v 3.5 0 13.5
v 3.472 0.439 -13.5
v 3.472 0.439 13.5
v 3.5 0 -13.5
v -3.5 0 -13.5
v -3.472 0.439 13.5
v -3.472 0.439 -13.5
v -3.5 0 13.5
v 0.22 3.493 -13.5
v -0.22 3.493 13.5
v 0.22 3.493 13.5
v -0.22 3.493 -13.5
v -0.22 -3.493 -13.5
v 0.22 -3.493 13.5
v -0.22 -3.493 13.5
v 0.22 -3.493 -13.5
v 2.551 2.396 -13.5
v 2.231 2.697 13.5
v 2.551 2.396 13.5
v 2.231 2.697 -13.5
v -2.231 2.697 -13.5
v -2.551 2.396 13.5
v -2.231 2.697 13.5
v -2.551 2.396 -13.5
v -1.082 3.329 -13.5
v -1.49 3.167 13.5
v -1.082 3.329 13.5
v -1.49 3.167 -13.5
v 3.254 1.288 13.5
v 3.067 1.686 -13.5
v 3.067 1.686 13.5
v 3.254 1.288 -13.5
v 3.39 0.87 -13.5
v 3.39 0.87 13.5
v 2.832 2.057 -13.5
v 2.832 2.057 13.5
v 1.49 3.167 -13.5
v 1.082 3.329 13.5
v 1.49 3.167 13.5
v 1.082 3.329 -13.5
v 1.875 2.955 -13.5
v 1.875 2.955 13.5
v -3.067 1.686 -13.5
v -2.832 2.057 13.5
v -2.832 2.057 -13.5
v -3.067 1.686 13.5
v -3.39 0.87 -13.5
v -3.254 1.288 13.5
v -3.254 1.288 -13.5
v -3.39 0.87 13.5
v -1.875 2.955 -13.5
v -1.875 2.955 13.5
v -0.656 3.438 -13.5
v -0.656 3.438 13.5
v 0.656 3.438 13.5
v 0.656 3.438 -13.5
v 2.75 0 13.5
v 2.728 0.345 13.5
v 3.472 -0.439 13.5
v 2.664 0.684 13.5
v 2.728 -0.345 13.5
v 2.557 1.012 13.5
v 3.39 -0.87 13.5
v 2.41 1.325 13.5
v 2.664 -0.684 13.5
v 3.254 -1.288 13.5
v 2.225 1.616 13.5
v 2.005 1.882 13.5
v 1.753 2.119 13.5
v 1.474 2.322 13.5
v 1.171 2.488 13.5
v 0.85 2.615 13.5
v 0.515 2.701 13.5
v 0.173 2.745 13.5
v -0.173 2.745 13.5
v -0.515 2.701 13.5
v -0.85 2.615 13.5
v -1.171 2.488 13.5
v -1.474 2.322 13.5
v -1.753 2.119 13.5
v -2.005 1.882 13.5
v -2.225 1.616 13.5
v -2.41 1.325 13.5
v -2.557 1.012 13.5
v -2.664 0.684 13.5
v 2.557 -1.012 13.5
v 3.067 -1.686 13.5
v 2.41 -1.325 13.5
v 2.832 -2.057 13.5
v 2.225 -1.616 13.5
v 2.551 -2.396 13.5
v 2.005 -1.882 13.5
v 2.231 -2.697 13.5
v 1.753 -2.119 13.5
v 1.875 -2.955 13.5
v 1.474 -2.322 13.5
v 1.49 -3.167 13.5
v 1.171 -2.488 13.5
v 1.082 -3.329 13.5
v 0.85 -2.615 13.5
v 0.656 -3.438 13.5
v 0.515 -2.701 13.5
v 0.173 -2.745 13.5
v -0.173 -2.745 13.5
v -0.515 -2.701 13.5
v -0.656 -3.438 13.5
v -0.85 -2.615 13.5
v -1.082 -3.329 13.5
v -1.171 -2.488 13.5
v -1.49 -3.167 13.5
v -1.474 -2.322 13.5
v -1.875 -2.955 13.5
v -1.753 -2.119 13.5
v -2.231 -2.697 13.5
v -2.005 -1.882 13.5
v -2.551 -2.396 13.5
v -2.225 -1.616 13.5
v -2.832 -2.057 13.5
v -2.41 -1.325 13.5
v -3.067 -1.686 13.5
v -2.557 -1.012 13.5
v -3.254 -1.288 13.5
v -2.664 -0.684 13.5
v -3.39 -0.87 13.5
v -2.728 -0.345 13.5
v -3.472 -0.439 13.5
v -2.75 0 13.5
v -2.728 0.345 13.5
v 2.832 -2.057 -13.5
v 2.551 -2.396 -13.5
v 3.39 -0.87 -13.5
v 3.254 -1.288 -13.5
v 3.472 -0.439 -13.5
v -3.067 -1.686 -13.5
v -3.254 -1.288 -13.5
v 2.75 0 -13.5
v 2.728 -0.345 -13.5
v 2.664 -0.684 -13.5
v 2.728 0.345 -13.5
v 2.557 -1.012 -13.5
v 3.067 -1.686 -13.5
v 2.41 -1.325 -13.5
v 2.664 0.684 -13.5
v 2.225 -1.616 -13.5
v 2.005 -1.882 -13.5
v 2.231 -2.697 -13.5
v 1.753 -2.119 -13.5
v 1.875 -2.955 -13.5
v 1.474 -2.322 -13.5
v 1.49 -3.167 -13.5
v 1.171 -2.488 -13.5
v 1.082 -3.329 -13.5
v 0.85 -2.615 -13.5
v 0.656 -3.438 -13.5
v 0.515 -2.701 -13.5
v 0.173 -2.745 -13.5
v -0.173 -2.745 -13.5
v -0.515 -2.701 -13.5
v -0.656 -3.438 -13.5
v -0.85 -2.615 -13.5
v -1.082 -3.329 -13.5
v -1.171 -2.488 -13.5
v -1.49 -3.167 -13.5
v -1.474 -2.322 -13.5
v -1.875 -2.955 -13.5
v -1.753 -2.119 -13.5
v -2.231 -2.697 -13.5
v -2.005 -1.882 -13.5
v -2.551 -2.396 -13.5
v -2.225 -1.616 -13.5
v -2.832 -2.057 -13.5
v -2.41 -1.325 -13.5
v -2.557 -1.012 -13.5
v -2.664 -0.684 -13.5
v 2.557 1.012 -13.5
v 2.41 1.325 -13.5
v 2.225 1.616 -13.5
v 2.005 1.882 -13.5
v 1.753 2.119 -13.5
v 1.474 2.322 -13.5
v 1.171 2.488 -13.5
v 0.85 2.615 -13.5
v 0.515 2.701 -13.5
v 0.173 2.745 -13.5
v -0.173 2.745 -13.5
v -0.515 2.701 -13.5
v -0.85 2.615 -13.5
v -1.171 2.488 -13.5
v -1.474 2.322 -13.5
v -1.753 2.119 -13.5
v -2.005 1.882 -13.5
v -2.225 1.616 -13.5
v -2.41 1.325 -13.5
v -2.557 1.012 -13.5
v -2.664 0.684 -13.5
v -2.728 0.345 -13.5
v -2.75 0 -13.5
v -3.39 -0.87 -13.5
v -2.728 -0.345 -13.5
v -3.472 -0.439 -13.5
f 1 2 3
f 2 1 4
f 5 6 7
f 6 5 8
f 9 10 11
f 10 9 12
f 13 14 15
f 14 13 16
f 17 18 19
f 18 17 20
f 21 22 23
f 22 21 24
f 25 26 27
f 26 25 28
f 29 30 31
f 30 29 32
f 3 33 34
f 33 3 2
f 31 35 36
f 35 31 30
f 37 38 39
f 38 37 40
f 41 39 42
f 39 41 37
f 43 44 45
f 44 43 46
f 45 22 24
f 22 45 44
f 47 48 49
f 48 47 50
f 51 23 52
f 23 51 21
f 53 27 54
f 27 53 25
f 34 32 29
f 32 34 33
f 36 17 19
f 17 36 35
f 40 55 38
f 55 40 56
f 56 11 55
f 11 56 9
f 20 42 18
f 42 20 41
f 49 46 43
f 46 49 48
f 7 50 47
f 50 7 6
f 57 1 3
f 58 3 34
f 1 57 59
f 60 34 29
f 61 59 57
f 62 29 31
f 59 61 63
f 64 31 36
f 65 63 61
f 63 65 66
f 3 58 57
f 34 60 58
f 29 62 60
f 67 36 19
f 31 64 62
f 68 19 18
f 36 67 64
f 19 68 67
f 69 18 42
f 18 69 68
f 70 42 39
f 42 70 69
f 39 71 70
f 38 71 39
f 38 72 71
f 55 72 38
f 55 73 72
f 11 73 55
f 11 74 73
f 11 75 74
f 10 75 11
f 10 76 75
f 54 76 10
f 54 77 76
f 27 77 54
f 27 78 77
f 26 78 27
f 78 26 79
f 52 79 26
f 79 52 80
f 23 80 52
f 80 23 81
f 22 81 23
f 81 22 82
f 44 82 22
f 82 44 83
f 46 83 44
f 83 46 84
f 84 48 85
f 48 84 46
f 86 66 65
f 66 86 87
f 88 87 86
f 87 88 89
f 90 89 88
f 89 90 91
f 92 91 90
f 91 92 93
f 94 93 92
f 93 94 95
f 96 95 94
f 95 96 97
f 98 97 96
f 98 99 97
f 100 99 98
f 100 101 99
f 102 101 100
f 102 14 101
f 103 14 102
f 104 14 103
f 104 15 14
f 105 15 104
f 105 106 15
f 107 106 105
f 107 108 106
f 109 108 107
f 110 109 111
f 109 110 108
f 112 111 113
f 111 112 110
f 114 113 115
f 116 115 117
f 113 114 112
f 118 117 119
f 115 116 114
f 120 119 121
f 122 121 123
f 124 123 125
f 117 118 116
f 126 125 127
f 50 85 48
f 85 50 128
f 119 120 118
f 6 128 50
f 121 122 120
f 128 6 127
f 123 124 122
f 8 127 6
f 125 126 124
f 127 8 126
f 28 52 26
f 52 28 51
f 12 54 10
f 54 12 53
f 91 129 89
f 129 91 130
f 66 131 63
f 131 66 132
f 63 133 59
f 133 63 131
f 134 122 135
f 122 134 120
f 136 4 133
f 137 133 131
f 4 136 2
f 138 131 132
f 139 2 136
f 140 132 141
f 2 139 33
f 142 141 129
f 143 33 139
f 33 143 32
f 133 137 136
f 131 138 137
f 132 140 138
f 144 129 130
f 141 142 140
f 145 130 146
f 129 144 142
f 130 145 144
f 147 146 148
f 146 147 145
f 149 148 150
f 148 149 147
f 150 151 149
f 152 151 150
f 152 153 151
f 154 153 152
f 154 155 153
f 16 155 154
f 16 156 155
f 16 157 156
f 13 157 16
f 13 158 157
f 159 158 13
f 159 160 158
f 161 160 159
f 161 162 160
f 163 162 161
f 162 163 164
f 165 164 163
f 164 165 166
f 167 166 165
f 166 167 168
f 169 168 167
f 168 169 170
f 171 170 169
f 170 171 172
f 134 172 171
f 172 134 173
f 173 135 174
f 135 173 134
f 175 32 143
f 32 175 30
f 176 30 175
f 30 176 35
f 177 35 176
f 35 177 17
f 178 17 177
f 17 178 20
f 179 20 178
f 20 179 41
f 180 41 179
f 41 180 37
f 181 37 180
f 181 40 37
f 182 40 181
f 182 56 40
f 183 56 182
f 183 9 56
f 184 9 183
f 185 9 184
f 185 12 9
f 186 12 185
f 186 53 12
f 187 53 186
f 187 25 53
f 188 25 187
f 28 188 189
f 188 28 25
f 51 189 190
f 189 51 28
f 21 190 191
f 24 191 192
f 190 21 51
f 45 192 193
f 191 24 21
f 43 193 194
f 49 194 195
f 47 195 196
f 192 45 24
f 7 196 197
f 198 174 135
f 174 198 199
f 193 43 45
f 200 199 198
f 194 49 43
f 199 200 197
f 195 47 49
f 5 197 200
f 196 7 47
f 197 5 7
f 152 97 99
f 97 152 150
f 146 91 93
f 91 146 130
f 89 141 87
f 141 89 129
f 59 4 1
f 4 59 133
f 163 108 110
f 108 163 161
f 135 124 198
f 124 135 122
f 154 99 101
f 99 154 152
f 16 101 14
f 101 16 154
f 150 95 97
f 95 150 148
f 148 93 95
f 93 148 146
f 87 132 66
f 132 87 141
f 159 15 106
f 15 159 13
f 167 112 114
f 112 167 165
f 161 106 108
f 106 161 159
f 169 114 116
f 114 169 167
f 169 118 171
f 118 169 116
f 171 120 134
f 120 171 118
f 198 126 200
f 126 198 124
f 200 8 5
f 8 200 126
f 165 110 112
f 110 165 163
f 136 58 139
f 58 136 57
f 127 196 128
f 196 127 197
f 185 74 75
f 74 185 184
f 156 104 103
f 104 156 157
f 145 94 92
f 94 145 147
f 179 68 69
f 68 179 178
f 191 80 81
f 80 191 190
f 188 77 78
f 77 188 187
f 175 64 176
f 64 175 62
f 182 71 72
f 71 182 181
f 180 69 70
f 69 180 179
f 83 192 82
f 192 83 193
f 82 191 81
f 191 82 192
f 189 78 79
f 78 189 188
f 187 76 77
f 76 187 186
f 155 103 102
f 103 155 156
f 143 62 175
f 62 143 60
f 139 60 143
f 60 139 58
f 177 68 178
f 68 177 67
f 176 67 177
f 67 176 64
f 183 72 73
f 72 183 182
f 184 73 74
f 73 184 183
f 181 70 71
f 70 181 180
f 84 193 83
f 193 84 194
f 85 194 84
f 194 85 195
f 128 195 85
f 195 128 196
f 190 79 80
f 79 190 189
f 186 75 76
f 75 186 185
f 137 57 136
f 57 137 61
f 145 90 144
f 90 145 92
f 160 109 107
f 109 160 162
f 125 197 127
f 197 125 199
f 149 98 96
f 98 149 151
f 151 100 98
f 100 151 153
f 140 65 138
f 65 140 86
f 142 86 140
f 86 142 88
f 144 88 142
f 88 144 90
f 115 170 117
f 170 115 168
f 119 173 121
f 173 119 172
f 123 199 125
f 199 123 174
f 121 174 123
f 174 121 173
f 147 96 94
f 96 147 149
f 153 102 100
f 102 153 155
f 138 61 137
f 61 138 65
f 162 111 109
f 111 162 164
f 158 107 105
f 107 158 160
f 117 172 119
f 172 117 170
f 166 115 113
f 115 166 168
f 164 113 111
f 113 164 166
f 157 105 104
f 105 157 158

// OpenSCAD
$fn = 50;


difference() {
	union() {
		translate(v = [0, 0, -13.5000000000]) {
			cylinder(h = 27, r = 3.5000000000);
		}
	}
	union() {
		translate(v = [0, 0, -100.0000000000]) {
			cylinder(h = 200, r = 2.7500000000);
		}
	}
}
